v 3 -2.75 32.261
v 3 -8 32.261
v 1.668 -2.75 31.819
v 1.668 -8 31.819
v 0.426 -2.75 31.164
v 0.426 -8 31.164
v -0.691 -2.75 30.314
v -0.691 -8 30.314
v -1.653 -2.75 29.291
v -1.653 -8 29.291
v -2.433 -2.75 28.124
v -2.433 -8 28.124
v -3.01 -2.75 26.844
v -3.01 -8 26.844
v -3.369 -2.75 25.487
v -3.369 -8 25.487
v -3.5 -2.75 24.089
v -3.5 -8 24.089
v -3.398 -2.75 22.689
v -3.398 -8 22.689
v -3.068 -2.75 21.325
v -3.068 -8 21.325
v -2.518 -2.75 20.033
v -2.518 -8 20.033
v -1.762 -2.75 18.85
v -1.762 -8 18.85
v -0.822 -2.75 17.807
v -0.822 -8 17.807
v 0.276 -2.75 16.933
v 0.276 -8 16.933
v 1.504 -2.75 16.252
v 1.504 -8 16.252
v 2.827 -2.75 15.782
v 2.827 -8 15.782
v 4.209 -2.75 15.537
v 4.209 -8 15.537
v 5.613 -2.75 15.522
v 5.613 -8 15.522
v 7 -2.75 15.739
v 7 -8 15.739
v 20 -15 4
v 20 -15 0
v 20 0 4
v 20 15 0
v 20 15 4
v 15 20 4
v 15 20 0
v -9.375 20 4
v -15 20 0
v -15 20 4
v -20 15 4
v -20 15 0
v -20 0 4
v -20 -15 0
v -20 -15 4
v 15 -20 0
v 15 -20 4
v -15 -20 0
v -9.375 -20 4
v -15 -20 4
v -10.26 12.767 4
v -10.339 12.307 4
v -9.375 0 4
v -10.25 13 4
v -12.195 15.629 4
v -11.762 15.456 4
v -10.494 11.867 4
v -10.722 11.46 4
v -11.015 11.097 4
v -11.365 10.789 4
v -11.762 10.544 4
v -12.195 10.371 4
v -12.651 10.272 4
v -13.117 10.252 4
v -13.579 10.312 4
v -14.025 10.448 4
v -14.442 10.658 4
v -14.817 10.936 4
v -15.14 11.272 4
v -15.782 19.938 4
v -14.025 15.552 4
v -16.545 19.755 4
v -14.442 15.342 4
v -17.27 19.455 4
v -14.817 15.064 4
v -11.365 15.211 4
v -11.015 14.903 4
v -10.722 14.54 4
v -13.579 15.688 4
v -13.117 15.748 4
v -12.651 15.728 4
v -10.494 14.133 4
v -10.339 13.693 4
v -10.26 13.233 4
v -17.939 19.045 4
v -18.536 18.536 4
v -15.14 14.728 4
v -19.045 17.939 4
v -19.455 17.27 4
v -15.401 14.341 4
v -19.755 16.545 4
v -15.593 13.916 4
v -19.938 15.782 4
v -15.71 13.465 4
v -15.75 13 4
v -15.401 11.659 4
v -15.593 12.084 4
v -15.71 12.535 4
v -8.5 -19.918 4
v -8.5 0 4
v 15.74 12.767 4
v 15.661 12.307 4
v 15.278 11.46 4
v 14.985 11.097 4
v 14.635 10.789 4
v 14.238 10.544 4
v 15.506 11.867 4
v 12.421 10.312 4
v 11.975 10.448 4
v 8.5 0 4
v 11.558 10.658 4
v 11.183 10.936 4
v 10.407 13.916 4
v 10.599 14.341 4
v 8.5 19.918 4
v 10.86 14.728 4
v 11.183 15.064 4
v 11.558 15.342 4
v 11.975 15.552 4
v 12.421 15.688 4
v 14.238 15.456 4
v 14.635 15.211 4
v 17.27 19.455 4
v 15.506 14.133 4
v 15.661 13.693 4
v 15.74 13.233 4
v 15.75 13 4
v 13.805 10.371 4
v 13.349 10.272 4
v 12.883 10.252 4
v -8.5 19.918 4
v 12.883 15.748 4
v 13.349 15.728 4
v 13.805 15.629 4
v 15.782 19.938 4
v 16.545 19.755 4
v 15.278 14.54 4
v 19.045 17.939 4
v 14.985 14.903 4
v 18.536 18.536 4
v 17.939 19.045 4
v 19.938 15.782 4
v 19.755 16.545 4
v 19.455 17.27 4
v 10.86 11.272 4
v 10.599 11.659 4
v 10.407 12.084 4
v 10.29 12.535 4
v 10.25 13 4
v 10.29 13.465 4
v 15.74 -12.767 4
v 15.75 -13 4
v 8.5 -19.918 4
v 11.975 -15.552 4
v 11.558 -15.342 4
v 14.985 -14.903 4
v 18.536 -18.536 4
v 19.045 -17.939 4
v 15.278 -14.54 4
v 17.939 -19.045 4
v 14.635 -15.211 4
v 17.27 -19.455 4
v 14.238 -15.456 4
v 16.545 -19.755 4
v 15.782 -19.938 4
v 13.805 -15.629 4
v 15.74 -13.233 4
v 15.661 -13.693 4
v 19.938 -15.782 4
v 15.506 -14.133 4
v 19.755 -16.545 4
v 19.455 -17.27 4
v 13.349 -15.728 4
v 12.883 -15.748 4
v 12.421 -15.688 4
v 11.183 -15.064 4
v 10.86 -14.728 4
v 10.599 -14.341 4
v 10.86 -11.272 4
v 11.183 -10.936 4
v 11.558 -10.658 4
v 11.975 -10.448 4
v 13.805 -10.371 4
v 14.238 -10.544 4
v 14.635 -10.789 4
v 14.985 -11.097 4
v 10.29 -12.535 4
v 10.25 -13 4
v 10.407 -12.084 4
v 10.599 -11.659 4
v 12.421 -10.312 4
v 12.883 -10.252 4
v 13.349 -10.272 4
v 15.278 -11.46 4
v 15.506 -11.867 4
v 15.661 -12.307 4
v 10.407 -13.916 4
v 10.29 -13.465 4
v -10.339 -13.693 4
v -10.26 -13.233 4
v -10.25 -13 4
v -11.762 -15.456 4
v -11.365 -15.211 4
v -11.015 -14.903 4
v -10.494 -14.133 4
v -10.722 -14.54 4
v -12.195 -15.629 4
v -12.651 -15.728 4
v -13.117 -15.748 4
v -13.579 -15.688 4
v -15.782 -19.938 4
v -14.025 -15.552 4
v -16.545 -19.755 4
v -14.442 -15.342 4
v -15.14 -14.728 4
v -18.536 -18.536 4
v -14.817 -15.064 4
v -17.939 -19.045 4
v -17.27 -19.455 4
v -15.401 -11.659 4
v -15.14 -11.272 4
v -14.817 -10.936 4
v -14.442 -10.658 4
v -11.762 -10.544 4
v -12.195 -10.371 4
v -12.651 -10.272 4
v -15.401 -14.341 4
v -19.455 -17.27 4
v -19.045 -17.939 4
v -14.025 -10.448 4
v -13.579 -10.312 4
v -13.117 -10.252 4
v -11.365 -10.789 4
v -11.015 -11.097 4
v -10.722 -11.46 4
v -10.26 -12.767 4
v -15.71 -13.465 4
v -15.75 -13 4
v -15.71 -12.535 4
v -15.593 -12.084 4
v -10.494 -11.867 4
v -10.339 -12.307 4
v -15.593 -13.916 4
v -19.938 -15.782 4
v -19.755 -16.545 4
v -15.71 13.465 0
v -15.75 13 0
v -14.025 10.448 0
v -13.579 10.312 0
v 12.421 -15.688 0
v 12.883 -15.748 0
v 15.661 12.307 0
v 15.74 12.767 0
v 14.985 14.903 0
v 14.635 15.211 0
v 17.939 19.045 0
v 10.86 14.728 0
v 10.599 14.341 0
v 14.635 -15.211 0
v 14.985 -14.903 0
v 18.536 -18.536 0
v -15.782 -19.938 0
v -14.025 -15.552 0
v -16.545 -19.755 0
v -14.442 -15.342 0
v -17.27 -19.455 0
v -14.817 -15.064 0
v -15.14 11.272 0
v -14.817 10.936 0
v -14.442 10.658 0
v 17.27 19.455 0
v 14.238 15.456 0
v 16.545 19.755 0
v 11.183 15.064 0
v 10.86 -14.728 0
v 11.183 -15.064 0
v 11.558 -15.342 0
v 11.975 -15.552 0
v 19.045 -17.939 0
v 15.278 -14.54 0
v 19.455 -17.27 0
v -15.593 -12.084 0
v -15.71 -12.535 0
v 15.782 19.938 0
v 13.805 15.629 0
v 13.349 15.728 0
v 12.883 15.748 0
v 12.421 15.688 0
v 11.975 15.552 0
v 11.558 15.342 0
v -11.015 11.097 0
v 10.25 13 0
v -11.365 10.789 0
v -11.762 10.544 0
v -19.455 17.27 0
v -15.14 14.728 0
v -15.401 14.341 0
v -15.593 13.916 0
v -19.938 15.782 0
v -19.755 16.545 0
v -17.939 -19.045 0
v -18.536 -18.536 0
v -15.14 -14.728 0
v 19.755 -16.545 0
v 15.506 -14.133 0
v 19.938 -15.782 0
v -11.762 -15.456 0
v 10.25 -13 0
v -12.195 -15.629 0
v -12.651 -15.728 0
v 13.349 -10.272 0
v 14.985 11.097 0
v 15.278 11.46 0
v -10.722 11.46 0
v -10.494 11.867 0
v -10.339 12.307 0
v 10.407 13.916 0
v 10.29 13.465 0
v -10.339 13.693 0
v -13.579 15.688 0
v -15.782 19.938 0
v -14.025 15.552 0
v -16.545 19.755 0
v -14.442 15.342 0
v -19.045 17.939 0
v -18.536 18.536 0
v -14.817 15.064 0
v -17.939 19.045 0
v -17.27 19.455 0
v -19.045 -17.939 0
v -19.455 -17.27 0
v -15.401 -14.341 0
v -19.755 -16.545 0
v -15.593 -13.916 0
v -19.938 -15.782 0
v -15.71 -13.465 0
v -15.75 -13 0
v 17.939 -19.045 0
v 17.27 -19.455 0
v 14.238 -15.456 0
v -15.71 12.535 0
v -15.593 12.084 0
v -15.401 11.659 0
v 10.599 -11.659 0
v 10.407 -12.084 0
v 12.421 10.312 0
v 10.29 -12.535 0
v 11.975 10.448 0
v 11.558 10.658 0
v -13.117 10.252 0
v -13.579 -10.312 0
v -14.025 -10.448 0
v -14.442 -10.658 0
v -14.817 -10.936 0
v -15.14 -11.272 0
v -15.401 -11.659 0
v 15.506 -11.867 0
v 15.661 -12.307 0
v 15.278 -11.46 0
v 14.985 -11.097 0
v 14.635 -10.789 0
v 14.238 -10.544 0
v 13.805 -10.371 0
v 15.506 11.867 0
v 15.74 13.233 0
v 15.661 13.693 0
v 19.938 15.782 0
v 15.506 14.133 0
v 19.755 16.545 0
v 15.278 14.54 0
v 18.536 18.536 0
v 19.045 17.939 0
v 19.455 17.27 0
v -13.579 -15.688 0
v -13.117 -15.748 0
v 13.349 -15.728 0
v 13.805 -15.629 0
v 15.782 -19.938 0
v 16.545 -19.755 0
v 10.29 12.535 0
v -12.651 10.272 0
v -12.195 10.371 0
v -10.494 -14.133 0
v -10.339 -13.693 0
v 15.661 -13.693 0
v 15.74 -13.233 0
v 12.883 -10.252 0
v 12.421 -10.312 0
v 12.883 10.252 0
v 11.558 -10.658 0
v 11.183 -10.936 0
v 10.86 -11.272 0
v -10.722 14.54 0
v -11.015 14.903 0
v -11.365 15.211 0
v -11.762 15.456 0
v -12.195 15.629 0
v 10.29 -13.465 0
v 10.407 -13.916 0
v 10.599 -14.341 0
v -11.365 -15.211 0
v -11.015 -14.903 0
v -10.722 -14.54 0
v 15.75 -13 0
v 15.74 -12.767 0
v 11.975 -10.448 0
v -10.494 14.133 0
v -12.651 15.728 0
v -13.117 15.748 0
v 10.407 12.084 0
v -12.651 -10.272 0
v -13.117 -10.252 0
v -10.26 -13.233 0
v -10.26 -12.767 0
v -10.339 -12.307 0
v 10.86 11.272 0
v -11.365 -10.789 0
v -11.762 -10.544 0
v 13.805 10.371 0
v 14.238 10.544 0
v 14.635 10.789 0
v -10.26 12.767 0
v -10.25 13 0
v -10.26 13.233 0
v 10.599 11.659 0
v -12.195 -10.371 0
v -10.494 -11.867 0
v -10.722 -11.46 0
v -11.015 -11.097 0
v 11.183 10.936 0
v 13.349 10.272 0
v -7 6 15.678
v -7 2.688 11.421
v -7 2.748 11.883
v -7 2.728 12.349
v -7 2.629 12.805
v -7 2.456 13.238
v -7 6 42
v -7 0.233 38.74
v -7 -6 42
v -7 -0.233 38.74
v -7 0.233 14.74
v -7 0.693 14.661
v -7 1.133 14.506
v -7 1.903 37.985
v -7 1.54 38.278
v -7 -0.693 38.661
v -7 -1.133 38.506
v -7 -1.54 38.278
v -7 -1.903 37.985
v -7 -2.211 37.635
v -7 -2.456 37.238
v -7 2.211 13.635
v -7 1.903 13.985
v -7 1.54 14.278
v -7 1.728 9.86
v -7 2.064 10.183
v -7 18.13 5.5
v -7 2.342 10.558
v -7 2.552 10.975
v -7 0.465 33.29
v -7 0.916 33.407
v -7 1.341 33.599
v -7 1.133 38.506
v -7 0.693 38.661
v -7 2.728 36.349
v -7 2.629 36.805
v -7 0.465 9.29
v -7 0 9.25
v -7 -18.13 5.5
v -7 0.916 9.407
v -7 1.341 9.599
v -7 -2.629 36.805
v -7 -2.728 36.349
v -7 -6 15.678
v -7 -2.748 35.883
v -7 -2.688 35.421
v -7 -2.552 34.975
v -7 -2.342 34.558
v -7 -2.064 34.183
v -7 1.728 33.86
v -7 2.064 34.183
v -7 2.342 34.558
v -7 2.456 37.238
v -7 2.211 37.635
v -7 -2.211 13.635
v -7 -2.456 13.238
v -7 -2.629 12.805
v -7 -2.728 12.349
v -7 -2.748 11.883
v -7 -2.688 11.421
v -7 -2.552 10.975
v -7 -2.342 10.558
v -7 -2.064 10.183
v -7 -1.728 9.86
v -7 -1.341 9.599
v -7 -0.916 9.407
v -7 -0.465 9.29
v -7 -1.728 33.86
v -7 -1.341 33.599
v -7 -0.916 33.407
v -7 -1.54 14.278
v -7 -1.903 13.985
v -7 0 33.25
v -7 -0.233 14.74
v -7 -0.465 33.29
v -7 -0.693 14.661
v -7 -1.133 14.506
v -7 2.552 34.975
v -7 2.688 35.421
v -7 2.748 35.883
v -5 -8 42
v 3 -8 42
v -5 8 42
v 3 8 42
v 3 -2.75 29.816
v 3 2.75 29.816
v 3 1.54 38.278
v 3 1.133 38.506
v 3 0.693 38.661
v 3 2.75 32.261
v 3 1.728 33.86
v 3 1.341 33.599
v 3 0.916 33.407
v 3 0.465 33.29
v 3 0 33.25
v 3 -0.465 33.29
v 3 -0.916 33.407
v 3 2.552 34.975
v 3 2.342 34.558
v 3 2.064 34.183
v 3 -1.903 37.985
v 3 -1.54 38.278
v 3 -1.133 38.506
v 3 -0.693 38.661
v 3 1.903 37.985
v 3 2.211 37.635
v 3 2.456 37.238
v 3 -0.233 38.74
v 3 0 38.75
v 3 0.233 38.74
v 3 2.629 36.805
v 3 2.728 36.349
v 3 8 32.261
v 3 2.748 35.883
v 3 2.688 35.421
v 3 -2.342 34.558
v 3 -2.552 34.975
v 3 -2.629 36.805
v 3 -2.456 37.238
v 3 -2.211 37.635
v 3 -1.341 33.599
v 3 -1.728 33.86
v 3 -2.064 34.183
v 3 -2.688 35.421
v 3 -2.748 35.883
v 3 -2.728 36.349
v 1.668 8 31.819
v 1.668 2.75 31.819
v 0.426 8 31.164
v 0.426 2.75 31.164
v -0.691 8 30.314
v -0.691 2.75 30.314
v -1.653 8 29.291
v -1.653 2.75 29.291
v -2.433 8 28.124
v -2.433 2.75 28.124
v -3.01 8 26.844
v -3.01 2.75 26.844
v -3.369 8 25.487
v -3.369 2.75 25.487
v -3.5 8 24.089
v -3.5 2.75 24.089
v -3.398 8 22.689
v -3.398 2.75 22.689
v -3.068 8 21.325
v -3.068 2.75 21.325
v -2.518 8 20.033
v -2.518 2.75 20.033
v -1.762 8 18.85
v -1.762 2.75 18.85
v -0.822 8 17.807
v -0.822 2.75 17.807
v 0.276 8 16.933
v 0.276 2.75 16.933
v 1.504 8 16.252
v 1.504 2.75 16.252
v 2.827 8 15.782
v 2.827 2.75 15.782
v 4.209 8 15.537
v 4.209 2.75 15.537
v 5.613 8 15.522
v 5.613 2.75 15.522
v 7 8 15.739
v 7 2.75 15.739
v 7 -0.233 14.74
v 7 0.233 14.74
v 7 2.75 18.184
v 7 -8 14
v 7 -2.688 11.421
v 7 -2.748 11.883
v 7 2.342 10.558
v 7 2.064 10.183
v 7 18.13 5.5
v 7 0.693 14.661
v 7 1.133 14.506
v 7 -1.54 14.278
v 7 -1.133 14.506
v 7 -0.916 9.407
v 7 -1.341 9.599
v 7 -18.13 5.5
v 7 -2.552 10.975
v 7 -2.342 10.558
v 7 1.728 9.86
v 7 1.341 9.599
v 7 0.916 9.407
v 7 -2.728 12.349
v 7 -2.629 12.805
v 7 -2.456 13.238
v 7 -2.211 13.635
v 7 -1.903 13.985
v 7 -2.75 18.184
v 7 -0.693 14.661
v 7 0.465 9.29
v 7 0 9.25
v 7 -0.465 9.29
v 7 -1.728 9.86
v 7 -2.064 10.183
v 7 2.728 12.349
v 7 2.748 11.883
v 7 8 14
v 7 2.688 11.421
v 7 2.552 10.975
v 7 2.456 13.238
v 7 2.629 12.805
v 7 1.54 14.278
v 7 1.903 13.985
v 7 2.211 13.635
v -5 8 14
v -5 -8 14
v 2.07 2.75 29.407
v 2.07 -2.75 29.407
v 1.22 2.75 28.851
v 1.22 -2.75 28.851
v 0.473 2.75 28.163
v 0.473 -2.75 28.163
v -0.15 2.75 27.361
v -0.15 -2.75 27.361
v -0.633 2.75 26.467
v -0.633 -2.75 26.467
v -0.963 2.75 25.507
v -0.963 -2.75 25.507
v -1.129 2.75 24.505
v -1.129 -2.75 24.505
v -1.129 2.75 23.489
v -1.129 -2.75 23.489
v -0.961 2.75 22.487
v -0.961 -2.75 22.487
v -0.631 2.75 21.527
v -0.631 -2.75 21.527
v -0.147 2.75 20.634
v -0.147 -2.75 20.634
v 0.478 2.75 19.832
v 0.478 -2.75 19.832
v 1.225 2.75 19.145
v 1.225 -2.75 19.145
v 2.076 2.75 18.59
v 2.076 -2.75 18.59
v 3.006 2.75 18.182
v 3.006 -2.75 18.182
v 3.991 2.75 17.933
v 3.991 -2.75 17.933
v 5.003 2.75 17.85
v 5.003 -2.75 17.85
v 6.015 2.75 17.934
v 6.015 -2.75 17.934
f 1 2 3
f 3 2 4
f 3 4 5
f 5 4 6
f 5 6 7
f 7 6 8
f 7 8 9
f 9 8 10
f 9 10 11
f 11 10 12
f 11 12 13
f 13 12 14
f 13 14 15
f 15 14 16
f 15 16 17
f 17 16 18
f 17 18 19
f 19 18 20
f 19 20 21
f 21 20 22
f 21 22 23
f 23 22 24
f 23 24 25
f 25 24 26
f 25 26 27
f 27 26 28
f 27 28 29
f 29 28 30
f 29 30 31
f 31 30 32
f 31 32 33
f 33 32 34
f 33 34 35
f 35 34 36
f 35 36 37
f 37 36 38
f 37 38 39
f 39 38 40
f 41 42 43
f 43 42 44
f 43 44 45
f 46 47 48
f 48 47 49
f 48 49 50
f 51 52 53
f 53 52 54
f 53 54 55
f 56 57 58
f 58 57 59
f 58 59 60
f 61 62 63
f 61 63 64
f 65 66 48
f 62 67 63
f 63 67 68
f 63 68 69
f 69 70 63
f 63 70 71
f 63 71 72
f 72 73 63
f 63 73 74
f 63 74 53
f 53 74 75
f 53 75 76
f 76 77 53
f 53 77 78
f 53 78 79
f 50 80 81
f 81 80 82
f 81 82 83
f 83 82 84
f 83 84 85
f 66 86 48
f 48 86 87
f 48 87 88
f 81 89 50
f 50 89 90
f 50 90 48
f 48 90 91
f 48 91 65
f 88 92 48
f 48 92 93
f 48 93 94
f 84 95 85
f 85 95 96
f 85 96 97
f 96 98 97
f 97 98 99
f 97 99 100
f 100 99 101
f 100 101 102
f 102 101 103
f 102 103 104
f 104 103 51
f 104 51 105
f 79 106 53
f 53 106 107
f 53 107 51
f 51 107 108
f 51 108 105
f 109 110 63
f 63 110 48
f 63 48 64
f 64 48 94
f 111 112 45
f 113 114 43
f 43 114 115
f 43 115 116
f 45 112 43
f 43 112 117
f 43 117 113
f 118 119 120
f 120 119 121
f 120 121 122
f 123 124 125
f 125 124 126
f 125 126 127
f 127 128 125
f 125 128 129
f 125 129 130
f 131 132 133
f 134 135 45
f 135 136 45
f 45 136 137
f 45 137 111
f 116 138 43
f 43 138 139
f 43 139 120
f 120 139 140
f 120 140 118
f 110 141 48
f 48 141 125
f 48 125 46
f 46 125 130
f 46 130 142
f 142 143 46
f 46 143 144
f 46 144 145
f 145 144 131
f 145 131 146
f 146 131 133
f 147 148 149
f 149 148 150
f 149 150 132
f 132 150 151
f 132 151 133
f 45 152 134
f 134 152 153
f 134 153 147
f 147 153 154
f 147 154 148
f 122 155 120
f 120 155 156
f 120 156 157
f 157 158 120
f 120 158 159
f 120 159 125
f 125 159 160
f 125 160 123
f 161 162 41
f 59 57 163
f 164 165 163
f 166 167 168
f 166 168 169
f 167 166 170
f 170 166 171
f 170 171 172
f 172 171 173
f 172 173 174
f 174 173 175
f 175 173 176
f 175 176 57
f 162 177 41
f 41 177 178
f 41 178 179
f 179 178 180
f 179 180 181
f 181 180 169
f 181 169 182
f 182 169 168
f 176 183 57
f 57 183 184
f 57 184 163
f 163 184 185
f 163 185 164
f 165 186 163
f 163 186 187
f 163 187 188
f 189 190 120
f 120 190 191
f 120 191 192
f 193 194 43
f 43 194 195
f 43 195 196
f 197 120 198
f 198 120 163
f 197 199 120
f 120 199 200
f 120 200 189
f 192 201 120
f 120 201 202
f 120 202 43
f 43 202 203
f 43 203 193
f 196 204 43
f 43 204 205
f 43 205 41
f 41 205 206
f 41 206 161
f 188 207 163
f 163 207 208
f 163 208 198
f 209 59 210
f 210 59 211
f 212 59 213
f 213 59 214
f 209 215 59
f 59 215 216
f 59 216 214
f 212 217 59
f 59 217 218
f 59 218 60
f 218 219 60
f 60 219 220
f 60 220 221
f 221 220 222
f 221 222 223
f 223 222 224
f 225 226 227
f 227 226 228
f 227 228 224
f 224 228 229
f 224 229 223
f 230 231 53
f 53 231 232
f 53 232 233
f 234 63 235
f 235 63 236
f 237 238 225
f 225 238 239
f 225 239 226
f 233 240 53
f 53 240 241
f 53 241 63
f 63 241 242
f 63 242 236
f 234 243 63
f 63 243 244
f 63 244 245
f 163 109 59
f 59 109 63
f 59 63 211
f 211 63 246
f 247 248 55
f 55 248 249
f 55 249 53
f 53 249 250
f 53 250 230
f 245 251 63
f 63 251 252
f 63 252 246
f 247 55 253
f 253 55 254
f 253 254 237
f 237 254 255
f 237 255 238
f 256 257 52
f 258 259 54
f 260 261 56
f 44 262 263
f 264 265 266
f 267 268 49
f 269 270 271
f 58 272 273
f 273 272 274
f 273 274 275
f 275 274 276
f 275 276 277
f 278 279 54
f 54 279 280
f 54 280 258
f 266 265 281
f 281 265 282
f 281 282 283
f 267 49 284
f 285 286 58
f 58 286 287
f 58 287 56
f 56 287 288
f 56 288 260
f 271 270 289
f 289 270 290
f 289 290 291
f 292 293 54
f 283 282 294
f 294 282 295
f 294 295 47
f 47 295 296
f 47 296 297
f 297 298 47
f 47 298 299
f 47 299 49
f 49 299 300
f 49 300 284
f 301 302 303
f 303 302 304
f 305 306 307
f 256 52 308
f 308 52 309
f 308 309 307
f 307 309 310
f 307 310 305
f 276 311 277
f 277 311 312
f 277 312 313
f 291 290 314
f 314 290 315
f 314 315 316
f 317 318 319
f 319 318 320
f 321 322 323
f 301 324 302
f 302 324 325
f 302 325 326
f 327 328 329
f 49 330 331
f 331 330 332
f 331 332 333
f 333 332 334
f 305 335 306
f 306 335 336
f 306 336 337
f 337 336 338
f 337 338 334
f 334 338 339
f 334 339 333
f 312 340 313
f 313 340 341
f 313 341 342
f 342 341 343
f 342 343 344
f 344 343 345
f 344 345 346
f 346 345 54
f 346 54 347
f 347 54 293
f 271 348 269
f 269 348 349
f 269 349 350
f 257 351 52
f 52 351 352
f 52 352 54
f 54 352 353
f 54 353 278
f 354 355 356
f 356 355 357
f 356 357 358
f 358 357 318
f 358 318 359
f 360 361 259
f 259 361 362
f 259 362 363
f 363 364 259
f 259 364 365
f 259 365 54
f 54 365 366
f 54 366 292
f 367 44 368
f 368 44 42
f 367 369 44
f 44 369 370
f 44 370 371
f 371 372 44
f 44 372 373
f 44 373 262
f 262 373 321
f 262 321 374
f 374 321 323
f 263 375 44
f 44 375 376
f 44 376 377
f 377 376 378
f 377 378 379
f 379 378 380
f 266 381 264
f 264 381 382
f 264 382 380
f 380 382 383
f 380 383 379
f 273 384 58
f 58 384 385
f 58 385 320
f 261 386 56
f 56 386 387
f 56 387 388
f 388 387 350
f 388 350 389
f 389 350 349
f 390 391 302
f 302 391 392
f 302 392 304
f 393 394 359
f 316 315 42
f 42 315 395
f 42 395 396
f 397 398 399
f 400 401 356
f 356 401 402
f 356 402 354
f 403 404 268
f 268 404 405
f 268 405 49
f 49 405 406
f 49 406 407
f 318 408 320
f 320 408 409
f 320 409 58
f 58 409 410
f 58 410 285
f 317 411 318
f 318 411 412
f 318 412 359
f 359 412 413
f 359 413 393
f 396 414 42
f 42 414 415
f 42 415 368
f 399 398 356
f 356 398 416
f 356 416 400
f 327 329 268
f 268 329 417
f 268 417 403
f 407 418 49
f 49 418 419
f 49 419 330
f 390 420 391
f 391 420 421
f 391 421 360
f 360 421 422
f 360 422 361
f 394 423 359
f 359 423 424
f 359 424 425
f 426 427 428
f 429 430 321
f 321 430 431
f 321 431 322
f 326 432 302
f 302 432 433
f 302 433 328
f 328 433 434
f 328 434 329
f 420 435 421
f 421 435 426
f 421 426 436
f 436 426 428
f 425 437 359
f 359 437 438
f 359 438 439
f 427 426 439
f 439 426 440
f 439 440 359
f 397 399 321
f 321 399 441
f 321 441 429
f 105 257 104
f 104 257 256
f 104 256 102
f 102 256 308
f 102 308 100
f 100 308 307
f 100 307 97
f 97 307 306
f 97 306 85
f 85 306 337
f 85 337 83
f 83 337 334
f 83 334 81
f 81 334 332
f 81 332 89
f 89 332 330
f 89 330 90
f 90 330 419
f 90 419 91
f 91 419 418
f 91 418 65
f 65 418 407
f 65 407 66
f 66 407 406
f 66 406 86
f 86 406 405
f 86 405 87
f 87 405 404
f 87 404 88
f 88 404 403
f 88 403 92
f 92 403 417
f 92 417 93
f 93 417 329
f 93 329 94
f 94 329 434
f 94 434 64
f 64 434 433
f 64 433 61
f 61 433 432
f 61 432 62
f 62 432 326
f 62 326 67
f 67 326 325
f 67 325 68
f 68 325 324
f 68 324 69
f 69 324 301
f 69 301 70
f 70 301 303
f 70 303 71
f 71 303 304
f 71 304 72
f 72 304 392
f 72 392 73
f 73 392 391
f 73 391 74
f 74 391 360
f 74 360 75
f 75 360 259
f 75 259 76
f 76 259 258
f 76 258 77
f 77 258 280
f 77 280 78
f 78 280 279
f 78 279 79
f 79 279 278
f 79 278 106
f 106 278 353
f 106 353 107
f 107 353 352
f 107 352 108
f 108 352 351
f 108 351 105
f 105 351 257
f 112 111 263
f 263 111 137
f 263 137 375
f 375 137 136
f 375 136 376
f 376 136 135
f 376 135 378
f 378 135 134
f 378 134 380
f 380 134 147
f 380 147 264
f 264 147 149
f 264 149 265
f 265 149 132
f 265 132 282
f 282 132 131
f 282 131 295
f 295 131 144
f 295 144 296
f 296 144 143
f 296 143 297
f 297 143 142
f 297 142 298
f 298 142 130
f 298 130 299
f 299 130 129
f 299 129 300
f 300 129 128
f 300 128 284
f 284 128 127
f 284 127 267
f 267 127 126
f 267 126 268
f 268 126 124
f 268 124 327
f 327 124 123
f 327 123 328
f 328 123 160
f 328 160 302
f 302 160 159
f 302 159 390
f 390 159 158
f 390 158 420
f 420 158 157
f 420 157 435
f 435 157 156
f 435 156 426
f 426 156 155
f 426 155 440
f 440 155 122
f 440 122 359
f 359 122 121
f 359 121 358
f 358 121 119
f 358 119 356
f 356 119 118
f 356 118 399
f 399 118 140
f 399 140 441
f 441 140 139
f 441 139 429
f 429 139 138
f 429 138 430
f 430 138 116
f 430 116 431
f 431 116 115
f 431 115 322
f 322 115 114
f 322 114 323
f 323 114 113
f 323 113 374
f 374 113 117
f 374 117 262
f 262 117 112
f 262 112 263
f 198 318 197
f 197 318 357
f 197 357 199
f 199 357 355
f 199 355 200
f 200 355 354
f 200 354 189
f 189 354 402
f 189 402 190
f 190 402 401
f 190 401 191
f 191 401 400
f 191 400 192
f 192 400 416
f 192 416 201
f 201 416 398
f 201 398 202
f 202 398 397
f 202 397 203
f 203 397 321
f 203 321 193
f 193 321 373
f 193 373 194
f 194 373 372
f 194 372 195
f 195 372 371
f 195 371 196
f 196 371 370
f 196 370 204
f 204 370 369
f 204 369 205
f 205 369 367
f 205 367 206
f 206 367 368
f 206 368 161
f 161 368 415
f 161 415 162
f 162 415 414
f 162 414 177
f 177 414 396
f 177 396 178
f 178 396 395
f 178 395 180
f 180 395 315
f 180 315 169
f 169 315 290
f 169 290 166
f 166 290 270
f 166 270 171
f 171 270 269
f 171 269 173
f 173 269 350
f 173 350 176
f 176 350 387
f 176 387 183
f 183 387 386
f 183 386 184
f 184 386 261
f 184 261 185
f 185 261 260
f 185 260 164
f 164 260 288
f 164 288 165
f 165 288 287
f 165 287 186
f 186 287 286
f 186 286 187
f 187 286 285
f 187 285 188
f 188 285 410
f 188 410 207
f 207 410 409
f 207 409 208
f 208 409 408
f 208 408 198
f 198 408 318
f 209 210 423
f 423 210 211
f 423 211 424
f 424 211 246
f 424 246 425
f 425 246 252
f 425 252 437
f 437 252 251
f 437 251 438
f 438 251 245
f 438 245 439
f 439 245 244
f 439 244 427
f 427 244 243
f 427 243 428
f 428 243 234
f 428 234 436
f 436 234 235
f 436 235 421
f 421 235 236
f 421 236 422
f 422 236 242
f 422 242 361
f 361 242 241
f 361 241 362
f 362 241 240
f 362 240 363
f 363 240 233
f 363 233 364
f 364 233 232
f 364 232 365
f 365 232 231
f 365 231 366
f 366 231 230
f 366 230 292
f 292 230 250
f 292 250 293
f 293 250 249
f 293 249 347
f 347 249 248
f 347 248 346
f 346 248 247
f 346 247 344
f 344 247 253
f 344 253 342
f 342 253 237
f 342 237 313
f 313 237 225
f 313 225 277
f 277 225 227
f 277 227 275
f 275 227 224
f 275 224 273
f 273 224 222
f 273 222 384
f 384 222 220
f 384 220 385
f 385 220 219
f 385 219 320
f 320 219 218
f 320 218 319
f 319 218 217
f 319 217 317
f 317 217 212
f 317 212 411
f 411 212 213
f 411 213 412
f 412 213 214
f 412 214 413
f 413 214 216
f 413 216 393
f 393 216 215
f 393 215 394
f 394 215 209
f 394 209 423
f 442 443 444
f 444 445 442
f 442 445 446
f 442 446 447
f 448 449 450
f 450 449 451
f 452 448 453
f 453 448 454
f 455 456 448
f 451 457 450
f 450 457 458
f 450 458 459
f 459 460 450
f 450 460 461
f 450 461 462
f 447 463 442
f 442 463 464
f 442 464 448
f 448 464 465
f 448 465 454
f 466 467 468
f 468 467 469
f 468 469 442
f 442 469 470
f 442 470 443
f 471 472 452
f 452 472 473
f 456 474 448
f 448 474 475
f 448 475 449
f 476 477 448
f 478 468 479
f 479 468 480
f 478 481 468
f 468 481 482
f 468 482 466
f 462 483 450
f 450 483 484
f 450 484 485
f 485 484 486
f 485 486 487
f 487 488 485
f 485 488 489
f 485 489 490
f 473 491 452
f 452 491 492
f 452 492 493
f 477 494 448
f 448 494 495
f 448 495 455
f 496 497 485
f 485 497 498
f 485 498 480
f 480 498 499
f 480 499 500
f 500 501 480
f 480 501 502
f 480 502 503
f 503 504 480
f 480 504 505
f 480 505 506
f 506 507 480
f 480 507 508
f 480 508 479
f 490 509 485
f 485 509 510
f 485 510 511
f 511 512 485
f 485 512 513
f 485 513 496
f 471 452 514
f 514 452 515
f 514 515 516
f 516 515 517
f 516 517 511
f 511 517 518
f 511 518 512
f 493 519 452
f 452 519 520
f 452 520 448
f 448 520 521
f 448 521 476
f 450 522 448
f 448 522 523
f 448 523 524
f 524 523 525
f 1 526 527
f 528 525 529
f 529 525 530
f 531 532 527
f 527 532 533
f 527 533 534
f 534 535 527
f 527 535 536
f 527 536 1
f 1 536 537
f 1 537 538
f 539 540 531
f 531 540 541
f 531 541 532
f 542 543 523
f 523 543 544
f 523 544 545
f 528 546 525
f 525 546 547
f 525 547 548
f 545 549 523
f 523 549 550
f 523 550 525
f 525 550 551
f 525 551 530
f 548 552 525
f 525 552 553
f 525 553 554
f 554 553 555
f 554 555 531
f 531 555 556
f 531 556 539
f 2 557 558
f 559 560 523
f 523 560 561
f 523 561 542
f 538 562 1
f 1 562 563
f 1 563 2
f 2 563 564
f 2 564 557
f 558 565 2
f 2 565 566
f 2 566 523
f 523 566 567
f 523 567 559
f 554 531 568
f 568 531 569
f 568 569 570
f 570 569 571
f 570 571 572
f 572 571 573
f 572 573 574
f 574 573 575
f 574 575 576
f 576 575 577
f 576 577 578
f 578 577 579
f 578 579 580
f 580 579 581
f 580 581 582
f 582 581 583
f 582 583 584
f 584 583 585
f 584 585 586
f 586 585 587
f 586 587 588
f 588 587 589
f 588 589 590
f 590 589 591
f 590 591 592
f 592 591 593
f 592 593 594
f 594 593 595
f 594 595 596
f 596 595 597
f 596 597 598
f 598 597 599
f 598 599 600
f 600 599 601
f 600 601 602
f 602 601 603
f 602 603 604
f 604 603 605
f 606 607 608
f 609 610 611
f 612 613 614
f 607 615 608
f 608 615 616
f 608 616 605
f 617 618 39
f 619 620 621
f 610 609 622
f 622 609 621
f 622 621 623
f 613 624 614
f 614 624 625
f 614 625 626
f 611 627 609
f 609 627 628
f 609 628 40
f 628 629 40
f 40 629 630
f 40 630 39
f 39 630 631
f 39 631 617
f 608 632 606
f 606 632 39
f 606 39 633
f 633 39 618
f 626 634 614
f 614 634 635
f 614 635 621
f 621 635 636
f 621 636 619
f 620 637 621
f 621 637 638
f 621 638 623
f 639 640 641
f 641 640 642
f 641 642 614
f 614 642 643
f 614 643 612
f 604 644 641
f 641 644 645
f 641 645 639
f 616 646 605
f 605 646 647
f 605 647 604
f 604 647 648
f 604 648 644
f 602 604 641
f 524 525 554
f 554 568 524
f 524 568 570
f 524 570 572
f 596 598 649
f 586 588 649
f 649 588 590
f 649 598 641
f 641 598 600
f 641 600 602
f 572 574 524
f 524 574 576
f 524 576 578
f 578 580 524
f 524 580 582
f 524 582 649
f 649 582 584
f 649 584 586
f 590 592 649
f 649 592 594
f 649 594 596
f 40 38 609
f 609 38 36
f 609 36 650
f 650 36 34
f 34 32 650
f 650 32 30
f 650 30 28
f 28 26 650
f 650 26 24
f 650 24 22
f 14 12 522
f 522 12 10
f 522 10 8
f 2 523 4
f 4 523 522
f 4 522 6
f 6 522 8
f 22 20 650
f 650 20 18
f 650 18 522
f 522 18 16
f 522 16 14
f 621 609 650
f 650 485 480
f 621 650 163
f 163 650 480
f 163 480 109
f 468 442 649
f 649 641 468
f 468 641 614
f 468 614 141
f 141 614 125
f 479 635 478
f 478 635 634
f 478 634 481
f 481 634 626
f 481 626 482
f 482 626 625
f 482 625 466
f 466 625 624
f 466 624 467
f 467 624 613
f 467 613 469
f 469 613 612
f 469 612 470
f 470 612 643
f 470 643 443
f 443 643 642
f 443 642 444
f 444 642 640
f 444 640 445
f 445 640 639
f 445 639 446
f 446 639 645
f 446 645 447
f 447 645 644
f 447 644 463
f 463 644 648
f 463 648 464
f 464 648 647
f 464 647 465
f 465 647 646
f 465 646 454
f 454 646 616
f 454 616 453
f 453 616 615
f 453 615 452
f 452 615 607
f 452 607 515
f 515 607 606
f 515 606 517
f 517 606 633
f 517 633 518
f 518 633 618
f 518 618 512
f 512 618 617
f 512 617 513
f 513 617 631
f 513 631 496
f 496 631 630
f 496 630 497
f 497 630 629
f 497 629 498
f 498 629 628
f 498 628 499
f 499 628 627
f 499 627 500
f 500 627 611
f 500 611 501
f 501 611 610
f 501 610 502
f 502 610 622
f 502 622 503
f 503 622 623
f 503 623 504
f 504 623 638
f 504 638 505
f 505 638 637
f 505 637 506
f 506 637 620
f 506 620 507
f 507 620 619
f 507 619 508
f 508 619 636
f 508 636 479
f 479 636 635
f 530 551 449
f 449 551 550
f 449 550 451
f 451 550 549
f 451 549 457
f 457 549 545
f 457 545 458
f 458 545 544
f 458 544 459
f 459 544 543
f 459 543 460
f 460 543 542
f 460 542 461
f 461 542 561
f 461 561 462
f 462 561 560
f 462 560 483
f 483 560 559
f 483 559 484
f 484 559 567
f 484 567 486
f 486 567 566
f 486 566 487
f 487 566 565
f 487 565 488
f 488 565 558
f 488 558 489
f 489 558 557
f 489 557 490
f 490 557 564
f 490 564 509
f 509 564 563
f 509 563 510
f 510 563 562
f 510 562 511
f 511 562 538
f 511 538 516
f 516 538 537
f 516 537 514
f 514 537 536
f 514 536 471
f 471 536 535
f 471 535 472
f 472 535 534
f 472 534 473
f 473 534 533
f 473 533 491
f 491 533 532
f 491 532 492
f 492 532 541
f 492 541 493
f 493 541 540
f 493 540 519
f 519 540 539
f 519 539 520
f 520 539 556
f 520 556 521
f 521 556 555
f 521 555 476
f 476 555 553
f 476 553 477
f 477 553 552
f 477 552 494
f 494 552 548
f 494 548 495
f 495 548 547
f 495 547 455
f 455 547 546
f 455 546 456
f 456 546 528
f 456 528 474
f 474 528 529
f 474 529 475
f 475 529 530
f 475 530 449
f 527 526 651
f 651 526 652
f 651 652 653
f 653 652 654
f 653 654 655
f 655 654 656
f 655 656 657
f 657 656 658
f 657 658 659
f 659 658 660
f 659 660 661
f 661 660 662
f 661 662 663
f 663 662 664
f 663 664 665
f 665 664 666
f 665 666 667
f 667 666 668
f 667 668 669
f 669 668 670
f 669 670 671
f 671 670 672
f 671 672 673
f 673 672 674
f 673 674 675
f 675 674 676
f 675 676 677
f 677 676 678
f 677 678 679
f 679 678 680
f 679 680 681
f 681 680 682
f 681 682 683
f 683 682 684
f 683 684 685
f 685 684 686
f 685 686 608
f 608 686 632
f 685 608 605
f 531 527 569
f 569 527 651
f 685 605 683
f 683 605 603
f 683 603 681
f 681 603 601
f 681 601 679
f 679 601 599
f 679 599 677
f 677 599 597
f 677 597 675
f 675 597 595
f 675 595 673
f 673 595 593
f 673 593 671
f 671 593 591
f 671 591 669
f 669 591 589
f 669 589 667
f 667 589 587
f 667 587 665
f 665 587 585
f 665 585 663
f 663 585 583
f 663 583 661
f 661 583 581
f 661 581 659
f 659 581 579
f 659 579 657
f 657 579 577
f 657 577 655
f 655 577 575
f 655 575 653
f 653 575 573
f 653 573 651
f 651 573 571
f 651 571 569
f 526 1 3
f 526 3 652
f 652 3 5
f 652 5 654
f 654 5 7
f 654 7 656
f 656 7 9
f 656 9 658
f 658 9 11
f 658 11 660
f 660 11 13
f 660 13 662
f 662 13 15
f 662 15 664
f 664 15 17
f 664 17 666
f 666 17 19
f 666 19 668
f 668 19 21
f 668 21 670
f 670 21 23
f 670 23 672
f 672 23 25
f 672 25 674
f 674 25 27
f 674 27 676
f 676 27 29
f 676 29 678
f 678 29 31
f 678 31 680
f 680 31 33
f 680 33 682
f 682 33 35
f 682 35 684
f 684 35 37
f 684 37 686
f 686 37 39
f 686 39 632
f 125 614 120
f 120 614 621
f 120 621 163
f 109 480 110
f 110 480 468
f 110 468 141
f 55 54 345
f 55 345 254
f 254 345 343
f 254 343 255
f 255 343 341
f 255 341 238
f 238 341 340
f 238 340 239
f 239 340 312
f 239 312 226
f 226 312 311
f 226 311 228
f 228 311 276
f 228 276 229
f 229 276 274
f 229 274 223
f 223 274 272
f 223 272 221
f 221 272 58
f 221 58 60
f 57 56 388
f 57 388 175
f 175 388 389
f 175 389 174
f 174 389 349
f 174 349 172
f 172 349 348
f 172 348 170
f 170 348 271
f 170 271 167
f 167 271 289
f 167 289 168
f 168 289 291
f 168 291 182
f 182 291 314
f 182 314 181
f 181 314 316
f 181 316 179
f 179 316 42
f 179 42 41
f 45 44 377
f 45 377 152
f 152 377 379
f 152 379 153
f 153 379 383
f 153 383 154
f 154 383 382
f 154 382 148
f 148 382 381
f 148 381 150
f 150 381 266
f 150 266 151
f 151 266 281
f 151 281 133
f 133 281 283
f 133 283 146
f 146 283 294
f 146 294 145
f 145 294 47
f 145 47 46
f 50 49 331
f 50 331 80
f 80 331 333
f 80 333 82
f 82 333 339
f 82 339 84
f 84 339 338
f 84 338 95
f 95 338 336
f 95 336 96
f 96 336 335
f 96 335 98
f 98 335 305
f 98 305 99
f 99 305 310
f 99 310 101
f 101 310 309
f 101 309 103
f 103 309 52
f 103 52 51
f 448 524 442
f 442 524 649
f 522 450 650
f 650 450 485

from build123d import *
from OCP.BRepFilletAPI import BRepFilletAPI_MakeChamfer

# Parameters (mm, degrees)
SKETCH1_W           = 40
SKETCH1_H           = 40
BOSS_EXTRUDE1_DEPTH = 4
CUT_EXTRUDE1_REACH  = 30.566
SKETCH2_R           = 2.75
BOSS_EXTRUDE2_DEPTH = 8
CHAMFER1_SIZE       = 10
CHAMFER1_SIZE2      = 11.917535926
SKETCH4_R           = 2.75
CUT_EXTRUDE2_DEPTH  = 7
BOSS_EXTRUDE3_DEPTH = 2.75
CHAMFER2_SIZE       = 1.5
FILLET1_R           = 5
CHAMFER3_SIZE       = 2


with BuildPart() as part:
    # Sketch1 → Boss-Extrude1 (new body)
    with BuildSketch(Plane.XY):
        Rectangle(SKETCH1_W, SKETCH1_H)
    extrude(amount=BOSS_EXTRUDE1_DEPTH)

    # Sketch2 → Cut-Extrude1 (cut, up to next)
    with BuildSketch(Plane.XY, mode=Mode.PRIVATE) as cut_extrude1_sk1:
        with Locations((-13, 13)):
            Circle(SKETCH2_R)
    cut_extrude1_tool1 = extrude(cut_extrude1_sk1.sketch, amount=CUT_EXTRUDE1_REACH, mode=Mode.PRIVATE) & part.part
    # Sketch2 → Cut-Extrude1 (cut, up to next)
    with BuildSketch(Plane.XY, mode=Mode.PRIVATE) as cut_extrude1_sk2:
        with Locations(Location((13, 13, 0), (0, 0, 180))):
            Circle(SKETCH2_R)
    cut_extrude1_tool2 = extrude(cut_extrude1_sk2.sketch, amount=CUT_EXTRUDE1_REACH, mode=Mode.PRIVATE) & part.part
    # Sketch2 → Cut-Extrude1 (cut, up to next)
    with BuildSketch(Plane.XY, mode=Mode.PRIVATE) as cut_extrude1_sk3:
        with Locations((13, -13)):
            Circle(SKETCH2_R)
    cut_extrude1_tool3 = extrude(cut_extrude1_sk3.sketch, amount=CUT_EXTRUDE1_REACH, mode=Mode.PRIVATE) & part.part
    # Sketch2 → Cut-Extrude1 (cut, up to next)
    with BuildSketch(Plane.XY, mode=Mode.PRIVATE) as cut_extrude1_sk4:
        with Locations(Location((-13, -13, 0), (0, 0, 180))):
            Circle(SKETCH2_R)
    cut_extrude1_tool4 = extrude(cut_extrude1_sk4.sketch, amount=CUT_EXTRUDE1_REACH, mode=Mode.PRIVATE) & part.part
    add(cut_extrude1_tool1.solids().sort_by_distance((-13, 13, 0))[0], mode=Mode.SUBTRACT)
    add(cut_extrude1_tool2.solids().sort_by_distance((13, 13, 0))[0], mode=Mode.SUBTRACT)
    add(cut_extrude1_tool3.solids().sort_by_distance((13, -13, 0))[0], mode=Mode.SUBTRACT)
    add(cut_extrude1_tool4.solids().sort_by_distance((-13, -13, 0))[0], mode=Mode.SUBTRACT)

    # Sketch3 → Boss-Extrude2 (add, symmetric)
    with BuildSketch(Plane(origin=(0, 0, 0), x_dir=(1, 0, 0), z_dir=(0, 1, 0))):
        with BuildLine():
            Line((-7, -4), (-7, -42))
            Line((-7, -42), (3, -42))
            Line((3, -42), (3, -32.261355821))
            ThreePointArc((3, -32.261355821), (-3.261355821, -22), (7, -15.738644179))
            Line((7, -15.738644179), (7, -4))
            Line((7, -4), (-7, -4))
        make_face()
    extrude(amount=BOSS_EXTRUDE2_DEPTH, both=True)

    # Chamfer1: one chamfer whose edges measure the first distance from different faces: ONE call of the kernel's chamfer builder (chamfer() names one face for all edges)
    chamfer1_edges_1 = [part.edges().sort_by_distance(p)[0] for p in [
        (0, -8, 4),
    ]]
    chamfer1_side_1 = [part.faces().sort_by_distance(p)[0] for p in [
        (6.595030865, -8, 9.86932209),
    ]]
    chamfer1_edges_2 = [part.edges().sort_by_distance(p)[0] for p in [
        (0, 8, 4),
    ]]
    chamfer1_side_2 = [part.faces().sort_by_distance(p)[0] for p in [
        (6.595030865, 8, 9.86932209),
    ]]
    chamfer1 = BRepFilletAPI_MakeChamfer(part.part.solid().wrapped)
    for e in chamfer1_edges_1:
        chamfer1.Add(CHAMFER1_SIZE, CHAMFER1_SIZE2, e.wrapped, chamfer1_side_1[0].wrapped)  # the first distance lies on this face
    for e in chamfer1_edges_2:
        chamfer1.Add(CHAMFER1_SIZE, CHAMFER1_SIZE2, e.wrapped, chamfer1_side_2[0].wrapped)  # the first distance lies on this face
    add(Compound.cast(chamfer1.Shape()), mode=Mode.REPLACE)

    # Sketch4 → Cut-Extrude2 (cut, symmetric)
    with BuildSketch(Plane(origin=(0, 0, 0), x_dir=(0, 0, -1), z_dir=(1, 0, 0))):
        with Locations((-12, 0)):
            Circle(SKETCH4_R)
        with Locations((-36, 0)):
            Circle(SKETCH4_R)
    extrude(amount=CUT_EXTRUDE2_DEPTH, both=True, mode=Mode.SUBTRACT)

    # Sketch5 → Boss-Extrude3 (add, symmetric)
    with BuildSketch(Plane(origin=(0, 0, 0), x_dir=(1, 0, 0), z_dir=(0, 1, 0))):
        with BuildLine():
            Line((7, -15.738644179), (7, -18.184288522))
            ThreePointArc((7, -18.184288522), (-0.815711478, -22), (3, -29.815711478))
            Line((3, -29.815711478), (3, -32.261355821))
            ThreePointArc((3, -32.261355821), (-3.261355821, -22), (7, -15.738644179))
        make_face()
    extrude(amount=BOSS_EXTRUDE3_DEPTH, both=True)

    # Chamfer2
    chamfer2_edges = [part.edges().sort_by_distance(p)[0] for p in [
        (7, 0, 4),
        (-7, 0, 4),
    ]]
    chamfer(chamfer2_edges, length=CHAMFER2_SIZE)

    # Fillet1
    fillet1_edges = [part.edges().sort_by_distance(p)[0] for p in [
        (20, -20, 2),
        (-20, -20, 2),
        (-20, 20, 2),
        (20, 20, 2),
    ]]
    fillet(fillet1_edges, radius=FILLET1_R)

    # Chamfer3
    chamfer3_edges = [part.edges().sort_by_distance(p)[0] for p in [
        (-7, -8, 28),
        (-7, 8, 28),
    ]]
    chamfer(chamfer3_edges, length=CHAMFER3_SIZE)


solid = part.part
